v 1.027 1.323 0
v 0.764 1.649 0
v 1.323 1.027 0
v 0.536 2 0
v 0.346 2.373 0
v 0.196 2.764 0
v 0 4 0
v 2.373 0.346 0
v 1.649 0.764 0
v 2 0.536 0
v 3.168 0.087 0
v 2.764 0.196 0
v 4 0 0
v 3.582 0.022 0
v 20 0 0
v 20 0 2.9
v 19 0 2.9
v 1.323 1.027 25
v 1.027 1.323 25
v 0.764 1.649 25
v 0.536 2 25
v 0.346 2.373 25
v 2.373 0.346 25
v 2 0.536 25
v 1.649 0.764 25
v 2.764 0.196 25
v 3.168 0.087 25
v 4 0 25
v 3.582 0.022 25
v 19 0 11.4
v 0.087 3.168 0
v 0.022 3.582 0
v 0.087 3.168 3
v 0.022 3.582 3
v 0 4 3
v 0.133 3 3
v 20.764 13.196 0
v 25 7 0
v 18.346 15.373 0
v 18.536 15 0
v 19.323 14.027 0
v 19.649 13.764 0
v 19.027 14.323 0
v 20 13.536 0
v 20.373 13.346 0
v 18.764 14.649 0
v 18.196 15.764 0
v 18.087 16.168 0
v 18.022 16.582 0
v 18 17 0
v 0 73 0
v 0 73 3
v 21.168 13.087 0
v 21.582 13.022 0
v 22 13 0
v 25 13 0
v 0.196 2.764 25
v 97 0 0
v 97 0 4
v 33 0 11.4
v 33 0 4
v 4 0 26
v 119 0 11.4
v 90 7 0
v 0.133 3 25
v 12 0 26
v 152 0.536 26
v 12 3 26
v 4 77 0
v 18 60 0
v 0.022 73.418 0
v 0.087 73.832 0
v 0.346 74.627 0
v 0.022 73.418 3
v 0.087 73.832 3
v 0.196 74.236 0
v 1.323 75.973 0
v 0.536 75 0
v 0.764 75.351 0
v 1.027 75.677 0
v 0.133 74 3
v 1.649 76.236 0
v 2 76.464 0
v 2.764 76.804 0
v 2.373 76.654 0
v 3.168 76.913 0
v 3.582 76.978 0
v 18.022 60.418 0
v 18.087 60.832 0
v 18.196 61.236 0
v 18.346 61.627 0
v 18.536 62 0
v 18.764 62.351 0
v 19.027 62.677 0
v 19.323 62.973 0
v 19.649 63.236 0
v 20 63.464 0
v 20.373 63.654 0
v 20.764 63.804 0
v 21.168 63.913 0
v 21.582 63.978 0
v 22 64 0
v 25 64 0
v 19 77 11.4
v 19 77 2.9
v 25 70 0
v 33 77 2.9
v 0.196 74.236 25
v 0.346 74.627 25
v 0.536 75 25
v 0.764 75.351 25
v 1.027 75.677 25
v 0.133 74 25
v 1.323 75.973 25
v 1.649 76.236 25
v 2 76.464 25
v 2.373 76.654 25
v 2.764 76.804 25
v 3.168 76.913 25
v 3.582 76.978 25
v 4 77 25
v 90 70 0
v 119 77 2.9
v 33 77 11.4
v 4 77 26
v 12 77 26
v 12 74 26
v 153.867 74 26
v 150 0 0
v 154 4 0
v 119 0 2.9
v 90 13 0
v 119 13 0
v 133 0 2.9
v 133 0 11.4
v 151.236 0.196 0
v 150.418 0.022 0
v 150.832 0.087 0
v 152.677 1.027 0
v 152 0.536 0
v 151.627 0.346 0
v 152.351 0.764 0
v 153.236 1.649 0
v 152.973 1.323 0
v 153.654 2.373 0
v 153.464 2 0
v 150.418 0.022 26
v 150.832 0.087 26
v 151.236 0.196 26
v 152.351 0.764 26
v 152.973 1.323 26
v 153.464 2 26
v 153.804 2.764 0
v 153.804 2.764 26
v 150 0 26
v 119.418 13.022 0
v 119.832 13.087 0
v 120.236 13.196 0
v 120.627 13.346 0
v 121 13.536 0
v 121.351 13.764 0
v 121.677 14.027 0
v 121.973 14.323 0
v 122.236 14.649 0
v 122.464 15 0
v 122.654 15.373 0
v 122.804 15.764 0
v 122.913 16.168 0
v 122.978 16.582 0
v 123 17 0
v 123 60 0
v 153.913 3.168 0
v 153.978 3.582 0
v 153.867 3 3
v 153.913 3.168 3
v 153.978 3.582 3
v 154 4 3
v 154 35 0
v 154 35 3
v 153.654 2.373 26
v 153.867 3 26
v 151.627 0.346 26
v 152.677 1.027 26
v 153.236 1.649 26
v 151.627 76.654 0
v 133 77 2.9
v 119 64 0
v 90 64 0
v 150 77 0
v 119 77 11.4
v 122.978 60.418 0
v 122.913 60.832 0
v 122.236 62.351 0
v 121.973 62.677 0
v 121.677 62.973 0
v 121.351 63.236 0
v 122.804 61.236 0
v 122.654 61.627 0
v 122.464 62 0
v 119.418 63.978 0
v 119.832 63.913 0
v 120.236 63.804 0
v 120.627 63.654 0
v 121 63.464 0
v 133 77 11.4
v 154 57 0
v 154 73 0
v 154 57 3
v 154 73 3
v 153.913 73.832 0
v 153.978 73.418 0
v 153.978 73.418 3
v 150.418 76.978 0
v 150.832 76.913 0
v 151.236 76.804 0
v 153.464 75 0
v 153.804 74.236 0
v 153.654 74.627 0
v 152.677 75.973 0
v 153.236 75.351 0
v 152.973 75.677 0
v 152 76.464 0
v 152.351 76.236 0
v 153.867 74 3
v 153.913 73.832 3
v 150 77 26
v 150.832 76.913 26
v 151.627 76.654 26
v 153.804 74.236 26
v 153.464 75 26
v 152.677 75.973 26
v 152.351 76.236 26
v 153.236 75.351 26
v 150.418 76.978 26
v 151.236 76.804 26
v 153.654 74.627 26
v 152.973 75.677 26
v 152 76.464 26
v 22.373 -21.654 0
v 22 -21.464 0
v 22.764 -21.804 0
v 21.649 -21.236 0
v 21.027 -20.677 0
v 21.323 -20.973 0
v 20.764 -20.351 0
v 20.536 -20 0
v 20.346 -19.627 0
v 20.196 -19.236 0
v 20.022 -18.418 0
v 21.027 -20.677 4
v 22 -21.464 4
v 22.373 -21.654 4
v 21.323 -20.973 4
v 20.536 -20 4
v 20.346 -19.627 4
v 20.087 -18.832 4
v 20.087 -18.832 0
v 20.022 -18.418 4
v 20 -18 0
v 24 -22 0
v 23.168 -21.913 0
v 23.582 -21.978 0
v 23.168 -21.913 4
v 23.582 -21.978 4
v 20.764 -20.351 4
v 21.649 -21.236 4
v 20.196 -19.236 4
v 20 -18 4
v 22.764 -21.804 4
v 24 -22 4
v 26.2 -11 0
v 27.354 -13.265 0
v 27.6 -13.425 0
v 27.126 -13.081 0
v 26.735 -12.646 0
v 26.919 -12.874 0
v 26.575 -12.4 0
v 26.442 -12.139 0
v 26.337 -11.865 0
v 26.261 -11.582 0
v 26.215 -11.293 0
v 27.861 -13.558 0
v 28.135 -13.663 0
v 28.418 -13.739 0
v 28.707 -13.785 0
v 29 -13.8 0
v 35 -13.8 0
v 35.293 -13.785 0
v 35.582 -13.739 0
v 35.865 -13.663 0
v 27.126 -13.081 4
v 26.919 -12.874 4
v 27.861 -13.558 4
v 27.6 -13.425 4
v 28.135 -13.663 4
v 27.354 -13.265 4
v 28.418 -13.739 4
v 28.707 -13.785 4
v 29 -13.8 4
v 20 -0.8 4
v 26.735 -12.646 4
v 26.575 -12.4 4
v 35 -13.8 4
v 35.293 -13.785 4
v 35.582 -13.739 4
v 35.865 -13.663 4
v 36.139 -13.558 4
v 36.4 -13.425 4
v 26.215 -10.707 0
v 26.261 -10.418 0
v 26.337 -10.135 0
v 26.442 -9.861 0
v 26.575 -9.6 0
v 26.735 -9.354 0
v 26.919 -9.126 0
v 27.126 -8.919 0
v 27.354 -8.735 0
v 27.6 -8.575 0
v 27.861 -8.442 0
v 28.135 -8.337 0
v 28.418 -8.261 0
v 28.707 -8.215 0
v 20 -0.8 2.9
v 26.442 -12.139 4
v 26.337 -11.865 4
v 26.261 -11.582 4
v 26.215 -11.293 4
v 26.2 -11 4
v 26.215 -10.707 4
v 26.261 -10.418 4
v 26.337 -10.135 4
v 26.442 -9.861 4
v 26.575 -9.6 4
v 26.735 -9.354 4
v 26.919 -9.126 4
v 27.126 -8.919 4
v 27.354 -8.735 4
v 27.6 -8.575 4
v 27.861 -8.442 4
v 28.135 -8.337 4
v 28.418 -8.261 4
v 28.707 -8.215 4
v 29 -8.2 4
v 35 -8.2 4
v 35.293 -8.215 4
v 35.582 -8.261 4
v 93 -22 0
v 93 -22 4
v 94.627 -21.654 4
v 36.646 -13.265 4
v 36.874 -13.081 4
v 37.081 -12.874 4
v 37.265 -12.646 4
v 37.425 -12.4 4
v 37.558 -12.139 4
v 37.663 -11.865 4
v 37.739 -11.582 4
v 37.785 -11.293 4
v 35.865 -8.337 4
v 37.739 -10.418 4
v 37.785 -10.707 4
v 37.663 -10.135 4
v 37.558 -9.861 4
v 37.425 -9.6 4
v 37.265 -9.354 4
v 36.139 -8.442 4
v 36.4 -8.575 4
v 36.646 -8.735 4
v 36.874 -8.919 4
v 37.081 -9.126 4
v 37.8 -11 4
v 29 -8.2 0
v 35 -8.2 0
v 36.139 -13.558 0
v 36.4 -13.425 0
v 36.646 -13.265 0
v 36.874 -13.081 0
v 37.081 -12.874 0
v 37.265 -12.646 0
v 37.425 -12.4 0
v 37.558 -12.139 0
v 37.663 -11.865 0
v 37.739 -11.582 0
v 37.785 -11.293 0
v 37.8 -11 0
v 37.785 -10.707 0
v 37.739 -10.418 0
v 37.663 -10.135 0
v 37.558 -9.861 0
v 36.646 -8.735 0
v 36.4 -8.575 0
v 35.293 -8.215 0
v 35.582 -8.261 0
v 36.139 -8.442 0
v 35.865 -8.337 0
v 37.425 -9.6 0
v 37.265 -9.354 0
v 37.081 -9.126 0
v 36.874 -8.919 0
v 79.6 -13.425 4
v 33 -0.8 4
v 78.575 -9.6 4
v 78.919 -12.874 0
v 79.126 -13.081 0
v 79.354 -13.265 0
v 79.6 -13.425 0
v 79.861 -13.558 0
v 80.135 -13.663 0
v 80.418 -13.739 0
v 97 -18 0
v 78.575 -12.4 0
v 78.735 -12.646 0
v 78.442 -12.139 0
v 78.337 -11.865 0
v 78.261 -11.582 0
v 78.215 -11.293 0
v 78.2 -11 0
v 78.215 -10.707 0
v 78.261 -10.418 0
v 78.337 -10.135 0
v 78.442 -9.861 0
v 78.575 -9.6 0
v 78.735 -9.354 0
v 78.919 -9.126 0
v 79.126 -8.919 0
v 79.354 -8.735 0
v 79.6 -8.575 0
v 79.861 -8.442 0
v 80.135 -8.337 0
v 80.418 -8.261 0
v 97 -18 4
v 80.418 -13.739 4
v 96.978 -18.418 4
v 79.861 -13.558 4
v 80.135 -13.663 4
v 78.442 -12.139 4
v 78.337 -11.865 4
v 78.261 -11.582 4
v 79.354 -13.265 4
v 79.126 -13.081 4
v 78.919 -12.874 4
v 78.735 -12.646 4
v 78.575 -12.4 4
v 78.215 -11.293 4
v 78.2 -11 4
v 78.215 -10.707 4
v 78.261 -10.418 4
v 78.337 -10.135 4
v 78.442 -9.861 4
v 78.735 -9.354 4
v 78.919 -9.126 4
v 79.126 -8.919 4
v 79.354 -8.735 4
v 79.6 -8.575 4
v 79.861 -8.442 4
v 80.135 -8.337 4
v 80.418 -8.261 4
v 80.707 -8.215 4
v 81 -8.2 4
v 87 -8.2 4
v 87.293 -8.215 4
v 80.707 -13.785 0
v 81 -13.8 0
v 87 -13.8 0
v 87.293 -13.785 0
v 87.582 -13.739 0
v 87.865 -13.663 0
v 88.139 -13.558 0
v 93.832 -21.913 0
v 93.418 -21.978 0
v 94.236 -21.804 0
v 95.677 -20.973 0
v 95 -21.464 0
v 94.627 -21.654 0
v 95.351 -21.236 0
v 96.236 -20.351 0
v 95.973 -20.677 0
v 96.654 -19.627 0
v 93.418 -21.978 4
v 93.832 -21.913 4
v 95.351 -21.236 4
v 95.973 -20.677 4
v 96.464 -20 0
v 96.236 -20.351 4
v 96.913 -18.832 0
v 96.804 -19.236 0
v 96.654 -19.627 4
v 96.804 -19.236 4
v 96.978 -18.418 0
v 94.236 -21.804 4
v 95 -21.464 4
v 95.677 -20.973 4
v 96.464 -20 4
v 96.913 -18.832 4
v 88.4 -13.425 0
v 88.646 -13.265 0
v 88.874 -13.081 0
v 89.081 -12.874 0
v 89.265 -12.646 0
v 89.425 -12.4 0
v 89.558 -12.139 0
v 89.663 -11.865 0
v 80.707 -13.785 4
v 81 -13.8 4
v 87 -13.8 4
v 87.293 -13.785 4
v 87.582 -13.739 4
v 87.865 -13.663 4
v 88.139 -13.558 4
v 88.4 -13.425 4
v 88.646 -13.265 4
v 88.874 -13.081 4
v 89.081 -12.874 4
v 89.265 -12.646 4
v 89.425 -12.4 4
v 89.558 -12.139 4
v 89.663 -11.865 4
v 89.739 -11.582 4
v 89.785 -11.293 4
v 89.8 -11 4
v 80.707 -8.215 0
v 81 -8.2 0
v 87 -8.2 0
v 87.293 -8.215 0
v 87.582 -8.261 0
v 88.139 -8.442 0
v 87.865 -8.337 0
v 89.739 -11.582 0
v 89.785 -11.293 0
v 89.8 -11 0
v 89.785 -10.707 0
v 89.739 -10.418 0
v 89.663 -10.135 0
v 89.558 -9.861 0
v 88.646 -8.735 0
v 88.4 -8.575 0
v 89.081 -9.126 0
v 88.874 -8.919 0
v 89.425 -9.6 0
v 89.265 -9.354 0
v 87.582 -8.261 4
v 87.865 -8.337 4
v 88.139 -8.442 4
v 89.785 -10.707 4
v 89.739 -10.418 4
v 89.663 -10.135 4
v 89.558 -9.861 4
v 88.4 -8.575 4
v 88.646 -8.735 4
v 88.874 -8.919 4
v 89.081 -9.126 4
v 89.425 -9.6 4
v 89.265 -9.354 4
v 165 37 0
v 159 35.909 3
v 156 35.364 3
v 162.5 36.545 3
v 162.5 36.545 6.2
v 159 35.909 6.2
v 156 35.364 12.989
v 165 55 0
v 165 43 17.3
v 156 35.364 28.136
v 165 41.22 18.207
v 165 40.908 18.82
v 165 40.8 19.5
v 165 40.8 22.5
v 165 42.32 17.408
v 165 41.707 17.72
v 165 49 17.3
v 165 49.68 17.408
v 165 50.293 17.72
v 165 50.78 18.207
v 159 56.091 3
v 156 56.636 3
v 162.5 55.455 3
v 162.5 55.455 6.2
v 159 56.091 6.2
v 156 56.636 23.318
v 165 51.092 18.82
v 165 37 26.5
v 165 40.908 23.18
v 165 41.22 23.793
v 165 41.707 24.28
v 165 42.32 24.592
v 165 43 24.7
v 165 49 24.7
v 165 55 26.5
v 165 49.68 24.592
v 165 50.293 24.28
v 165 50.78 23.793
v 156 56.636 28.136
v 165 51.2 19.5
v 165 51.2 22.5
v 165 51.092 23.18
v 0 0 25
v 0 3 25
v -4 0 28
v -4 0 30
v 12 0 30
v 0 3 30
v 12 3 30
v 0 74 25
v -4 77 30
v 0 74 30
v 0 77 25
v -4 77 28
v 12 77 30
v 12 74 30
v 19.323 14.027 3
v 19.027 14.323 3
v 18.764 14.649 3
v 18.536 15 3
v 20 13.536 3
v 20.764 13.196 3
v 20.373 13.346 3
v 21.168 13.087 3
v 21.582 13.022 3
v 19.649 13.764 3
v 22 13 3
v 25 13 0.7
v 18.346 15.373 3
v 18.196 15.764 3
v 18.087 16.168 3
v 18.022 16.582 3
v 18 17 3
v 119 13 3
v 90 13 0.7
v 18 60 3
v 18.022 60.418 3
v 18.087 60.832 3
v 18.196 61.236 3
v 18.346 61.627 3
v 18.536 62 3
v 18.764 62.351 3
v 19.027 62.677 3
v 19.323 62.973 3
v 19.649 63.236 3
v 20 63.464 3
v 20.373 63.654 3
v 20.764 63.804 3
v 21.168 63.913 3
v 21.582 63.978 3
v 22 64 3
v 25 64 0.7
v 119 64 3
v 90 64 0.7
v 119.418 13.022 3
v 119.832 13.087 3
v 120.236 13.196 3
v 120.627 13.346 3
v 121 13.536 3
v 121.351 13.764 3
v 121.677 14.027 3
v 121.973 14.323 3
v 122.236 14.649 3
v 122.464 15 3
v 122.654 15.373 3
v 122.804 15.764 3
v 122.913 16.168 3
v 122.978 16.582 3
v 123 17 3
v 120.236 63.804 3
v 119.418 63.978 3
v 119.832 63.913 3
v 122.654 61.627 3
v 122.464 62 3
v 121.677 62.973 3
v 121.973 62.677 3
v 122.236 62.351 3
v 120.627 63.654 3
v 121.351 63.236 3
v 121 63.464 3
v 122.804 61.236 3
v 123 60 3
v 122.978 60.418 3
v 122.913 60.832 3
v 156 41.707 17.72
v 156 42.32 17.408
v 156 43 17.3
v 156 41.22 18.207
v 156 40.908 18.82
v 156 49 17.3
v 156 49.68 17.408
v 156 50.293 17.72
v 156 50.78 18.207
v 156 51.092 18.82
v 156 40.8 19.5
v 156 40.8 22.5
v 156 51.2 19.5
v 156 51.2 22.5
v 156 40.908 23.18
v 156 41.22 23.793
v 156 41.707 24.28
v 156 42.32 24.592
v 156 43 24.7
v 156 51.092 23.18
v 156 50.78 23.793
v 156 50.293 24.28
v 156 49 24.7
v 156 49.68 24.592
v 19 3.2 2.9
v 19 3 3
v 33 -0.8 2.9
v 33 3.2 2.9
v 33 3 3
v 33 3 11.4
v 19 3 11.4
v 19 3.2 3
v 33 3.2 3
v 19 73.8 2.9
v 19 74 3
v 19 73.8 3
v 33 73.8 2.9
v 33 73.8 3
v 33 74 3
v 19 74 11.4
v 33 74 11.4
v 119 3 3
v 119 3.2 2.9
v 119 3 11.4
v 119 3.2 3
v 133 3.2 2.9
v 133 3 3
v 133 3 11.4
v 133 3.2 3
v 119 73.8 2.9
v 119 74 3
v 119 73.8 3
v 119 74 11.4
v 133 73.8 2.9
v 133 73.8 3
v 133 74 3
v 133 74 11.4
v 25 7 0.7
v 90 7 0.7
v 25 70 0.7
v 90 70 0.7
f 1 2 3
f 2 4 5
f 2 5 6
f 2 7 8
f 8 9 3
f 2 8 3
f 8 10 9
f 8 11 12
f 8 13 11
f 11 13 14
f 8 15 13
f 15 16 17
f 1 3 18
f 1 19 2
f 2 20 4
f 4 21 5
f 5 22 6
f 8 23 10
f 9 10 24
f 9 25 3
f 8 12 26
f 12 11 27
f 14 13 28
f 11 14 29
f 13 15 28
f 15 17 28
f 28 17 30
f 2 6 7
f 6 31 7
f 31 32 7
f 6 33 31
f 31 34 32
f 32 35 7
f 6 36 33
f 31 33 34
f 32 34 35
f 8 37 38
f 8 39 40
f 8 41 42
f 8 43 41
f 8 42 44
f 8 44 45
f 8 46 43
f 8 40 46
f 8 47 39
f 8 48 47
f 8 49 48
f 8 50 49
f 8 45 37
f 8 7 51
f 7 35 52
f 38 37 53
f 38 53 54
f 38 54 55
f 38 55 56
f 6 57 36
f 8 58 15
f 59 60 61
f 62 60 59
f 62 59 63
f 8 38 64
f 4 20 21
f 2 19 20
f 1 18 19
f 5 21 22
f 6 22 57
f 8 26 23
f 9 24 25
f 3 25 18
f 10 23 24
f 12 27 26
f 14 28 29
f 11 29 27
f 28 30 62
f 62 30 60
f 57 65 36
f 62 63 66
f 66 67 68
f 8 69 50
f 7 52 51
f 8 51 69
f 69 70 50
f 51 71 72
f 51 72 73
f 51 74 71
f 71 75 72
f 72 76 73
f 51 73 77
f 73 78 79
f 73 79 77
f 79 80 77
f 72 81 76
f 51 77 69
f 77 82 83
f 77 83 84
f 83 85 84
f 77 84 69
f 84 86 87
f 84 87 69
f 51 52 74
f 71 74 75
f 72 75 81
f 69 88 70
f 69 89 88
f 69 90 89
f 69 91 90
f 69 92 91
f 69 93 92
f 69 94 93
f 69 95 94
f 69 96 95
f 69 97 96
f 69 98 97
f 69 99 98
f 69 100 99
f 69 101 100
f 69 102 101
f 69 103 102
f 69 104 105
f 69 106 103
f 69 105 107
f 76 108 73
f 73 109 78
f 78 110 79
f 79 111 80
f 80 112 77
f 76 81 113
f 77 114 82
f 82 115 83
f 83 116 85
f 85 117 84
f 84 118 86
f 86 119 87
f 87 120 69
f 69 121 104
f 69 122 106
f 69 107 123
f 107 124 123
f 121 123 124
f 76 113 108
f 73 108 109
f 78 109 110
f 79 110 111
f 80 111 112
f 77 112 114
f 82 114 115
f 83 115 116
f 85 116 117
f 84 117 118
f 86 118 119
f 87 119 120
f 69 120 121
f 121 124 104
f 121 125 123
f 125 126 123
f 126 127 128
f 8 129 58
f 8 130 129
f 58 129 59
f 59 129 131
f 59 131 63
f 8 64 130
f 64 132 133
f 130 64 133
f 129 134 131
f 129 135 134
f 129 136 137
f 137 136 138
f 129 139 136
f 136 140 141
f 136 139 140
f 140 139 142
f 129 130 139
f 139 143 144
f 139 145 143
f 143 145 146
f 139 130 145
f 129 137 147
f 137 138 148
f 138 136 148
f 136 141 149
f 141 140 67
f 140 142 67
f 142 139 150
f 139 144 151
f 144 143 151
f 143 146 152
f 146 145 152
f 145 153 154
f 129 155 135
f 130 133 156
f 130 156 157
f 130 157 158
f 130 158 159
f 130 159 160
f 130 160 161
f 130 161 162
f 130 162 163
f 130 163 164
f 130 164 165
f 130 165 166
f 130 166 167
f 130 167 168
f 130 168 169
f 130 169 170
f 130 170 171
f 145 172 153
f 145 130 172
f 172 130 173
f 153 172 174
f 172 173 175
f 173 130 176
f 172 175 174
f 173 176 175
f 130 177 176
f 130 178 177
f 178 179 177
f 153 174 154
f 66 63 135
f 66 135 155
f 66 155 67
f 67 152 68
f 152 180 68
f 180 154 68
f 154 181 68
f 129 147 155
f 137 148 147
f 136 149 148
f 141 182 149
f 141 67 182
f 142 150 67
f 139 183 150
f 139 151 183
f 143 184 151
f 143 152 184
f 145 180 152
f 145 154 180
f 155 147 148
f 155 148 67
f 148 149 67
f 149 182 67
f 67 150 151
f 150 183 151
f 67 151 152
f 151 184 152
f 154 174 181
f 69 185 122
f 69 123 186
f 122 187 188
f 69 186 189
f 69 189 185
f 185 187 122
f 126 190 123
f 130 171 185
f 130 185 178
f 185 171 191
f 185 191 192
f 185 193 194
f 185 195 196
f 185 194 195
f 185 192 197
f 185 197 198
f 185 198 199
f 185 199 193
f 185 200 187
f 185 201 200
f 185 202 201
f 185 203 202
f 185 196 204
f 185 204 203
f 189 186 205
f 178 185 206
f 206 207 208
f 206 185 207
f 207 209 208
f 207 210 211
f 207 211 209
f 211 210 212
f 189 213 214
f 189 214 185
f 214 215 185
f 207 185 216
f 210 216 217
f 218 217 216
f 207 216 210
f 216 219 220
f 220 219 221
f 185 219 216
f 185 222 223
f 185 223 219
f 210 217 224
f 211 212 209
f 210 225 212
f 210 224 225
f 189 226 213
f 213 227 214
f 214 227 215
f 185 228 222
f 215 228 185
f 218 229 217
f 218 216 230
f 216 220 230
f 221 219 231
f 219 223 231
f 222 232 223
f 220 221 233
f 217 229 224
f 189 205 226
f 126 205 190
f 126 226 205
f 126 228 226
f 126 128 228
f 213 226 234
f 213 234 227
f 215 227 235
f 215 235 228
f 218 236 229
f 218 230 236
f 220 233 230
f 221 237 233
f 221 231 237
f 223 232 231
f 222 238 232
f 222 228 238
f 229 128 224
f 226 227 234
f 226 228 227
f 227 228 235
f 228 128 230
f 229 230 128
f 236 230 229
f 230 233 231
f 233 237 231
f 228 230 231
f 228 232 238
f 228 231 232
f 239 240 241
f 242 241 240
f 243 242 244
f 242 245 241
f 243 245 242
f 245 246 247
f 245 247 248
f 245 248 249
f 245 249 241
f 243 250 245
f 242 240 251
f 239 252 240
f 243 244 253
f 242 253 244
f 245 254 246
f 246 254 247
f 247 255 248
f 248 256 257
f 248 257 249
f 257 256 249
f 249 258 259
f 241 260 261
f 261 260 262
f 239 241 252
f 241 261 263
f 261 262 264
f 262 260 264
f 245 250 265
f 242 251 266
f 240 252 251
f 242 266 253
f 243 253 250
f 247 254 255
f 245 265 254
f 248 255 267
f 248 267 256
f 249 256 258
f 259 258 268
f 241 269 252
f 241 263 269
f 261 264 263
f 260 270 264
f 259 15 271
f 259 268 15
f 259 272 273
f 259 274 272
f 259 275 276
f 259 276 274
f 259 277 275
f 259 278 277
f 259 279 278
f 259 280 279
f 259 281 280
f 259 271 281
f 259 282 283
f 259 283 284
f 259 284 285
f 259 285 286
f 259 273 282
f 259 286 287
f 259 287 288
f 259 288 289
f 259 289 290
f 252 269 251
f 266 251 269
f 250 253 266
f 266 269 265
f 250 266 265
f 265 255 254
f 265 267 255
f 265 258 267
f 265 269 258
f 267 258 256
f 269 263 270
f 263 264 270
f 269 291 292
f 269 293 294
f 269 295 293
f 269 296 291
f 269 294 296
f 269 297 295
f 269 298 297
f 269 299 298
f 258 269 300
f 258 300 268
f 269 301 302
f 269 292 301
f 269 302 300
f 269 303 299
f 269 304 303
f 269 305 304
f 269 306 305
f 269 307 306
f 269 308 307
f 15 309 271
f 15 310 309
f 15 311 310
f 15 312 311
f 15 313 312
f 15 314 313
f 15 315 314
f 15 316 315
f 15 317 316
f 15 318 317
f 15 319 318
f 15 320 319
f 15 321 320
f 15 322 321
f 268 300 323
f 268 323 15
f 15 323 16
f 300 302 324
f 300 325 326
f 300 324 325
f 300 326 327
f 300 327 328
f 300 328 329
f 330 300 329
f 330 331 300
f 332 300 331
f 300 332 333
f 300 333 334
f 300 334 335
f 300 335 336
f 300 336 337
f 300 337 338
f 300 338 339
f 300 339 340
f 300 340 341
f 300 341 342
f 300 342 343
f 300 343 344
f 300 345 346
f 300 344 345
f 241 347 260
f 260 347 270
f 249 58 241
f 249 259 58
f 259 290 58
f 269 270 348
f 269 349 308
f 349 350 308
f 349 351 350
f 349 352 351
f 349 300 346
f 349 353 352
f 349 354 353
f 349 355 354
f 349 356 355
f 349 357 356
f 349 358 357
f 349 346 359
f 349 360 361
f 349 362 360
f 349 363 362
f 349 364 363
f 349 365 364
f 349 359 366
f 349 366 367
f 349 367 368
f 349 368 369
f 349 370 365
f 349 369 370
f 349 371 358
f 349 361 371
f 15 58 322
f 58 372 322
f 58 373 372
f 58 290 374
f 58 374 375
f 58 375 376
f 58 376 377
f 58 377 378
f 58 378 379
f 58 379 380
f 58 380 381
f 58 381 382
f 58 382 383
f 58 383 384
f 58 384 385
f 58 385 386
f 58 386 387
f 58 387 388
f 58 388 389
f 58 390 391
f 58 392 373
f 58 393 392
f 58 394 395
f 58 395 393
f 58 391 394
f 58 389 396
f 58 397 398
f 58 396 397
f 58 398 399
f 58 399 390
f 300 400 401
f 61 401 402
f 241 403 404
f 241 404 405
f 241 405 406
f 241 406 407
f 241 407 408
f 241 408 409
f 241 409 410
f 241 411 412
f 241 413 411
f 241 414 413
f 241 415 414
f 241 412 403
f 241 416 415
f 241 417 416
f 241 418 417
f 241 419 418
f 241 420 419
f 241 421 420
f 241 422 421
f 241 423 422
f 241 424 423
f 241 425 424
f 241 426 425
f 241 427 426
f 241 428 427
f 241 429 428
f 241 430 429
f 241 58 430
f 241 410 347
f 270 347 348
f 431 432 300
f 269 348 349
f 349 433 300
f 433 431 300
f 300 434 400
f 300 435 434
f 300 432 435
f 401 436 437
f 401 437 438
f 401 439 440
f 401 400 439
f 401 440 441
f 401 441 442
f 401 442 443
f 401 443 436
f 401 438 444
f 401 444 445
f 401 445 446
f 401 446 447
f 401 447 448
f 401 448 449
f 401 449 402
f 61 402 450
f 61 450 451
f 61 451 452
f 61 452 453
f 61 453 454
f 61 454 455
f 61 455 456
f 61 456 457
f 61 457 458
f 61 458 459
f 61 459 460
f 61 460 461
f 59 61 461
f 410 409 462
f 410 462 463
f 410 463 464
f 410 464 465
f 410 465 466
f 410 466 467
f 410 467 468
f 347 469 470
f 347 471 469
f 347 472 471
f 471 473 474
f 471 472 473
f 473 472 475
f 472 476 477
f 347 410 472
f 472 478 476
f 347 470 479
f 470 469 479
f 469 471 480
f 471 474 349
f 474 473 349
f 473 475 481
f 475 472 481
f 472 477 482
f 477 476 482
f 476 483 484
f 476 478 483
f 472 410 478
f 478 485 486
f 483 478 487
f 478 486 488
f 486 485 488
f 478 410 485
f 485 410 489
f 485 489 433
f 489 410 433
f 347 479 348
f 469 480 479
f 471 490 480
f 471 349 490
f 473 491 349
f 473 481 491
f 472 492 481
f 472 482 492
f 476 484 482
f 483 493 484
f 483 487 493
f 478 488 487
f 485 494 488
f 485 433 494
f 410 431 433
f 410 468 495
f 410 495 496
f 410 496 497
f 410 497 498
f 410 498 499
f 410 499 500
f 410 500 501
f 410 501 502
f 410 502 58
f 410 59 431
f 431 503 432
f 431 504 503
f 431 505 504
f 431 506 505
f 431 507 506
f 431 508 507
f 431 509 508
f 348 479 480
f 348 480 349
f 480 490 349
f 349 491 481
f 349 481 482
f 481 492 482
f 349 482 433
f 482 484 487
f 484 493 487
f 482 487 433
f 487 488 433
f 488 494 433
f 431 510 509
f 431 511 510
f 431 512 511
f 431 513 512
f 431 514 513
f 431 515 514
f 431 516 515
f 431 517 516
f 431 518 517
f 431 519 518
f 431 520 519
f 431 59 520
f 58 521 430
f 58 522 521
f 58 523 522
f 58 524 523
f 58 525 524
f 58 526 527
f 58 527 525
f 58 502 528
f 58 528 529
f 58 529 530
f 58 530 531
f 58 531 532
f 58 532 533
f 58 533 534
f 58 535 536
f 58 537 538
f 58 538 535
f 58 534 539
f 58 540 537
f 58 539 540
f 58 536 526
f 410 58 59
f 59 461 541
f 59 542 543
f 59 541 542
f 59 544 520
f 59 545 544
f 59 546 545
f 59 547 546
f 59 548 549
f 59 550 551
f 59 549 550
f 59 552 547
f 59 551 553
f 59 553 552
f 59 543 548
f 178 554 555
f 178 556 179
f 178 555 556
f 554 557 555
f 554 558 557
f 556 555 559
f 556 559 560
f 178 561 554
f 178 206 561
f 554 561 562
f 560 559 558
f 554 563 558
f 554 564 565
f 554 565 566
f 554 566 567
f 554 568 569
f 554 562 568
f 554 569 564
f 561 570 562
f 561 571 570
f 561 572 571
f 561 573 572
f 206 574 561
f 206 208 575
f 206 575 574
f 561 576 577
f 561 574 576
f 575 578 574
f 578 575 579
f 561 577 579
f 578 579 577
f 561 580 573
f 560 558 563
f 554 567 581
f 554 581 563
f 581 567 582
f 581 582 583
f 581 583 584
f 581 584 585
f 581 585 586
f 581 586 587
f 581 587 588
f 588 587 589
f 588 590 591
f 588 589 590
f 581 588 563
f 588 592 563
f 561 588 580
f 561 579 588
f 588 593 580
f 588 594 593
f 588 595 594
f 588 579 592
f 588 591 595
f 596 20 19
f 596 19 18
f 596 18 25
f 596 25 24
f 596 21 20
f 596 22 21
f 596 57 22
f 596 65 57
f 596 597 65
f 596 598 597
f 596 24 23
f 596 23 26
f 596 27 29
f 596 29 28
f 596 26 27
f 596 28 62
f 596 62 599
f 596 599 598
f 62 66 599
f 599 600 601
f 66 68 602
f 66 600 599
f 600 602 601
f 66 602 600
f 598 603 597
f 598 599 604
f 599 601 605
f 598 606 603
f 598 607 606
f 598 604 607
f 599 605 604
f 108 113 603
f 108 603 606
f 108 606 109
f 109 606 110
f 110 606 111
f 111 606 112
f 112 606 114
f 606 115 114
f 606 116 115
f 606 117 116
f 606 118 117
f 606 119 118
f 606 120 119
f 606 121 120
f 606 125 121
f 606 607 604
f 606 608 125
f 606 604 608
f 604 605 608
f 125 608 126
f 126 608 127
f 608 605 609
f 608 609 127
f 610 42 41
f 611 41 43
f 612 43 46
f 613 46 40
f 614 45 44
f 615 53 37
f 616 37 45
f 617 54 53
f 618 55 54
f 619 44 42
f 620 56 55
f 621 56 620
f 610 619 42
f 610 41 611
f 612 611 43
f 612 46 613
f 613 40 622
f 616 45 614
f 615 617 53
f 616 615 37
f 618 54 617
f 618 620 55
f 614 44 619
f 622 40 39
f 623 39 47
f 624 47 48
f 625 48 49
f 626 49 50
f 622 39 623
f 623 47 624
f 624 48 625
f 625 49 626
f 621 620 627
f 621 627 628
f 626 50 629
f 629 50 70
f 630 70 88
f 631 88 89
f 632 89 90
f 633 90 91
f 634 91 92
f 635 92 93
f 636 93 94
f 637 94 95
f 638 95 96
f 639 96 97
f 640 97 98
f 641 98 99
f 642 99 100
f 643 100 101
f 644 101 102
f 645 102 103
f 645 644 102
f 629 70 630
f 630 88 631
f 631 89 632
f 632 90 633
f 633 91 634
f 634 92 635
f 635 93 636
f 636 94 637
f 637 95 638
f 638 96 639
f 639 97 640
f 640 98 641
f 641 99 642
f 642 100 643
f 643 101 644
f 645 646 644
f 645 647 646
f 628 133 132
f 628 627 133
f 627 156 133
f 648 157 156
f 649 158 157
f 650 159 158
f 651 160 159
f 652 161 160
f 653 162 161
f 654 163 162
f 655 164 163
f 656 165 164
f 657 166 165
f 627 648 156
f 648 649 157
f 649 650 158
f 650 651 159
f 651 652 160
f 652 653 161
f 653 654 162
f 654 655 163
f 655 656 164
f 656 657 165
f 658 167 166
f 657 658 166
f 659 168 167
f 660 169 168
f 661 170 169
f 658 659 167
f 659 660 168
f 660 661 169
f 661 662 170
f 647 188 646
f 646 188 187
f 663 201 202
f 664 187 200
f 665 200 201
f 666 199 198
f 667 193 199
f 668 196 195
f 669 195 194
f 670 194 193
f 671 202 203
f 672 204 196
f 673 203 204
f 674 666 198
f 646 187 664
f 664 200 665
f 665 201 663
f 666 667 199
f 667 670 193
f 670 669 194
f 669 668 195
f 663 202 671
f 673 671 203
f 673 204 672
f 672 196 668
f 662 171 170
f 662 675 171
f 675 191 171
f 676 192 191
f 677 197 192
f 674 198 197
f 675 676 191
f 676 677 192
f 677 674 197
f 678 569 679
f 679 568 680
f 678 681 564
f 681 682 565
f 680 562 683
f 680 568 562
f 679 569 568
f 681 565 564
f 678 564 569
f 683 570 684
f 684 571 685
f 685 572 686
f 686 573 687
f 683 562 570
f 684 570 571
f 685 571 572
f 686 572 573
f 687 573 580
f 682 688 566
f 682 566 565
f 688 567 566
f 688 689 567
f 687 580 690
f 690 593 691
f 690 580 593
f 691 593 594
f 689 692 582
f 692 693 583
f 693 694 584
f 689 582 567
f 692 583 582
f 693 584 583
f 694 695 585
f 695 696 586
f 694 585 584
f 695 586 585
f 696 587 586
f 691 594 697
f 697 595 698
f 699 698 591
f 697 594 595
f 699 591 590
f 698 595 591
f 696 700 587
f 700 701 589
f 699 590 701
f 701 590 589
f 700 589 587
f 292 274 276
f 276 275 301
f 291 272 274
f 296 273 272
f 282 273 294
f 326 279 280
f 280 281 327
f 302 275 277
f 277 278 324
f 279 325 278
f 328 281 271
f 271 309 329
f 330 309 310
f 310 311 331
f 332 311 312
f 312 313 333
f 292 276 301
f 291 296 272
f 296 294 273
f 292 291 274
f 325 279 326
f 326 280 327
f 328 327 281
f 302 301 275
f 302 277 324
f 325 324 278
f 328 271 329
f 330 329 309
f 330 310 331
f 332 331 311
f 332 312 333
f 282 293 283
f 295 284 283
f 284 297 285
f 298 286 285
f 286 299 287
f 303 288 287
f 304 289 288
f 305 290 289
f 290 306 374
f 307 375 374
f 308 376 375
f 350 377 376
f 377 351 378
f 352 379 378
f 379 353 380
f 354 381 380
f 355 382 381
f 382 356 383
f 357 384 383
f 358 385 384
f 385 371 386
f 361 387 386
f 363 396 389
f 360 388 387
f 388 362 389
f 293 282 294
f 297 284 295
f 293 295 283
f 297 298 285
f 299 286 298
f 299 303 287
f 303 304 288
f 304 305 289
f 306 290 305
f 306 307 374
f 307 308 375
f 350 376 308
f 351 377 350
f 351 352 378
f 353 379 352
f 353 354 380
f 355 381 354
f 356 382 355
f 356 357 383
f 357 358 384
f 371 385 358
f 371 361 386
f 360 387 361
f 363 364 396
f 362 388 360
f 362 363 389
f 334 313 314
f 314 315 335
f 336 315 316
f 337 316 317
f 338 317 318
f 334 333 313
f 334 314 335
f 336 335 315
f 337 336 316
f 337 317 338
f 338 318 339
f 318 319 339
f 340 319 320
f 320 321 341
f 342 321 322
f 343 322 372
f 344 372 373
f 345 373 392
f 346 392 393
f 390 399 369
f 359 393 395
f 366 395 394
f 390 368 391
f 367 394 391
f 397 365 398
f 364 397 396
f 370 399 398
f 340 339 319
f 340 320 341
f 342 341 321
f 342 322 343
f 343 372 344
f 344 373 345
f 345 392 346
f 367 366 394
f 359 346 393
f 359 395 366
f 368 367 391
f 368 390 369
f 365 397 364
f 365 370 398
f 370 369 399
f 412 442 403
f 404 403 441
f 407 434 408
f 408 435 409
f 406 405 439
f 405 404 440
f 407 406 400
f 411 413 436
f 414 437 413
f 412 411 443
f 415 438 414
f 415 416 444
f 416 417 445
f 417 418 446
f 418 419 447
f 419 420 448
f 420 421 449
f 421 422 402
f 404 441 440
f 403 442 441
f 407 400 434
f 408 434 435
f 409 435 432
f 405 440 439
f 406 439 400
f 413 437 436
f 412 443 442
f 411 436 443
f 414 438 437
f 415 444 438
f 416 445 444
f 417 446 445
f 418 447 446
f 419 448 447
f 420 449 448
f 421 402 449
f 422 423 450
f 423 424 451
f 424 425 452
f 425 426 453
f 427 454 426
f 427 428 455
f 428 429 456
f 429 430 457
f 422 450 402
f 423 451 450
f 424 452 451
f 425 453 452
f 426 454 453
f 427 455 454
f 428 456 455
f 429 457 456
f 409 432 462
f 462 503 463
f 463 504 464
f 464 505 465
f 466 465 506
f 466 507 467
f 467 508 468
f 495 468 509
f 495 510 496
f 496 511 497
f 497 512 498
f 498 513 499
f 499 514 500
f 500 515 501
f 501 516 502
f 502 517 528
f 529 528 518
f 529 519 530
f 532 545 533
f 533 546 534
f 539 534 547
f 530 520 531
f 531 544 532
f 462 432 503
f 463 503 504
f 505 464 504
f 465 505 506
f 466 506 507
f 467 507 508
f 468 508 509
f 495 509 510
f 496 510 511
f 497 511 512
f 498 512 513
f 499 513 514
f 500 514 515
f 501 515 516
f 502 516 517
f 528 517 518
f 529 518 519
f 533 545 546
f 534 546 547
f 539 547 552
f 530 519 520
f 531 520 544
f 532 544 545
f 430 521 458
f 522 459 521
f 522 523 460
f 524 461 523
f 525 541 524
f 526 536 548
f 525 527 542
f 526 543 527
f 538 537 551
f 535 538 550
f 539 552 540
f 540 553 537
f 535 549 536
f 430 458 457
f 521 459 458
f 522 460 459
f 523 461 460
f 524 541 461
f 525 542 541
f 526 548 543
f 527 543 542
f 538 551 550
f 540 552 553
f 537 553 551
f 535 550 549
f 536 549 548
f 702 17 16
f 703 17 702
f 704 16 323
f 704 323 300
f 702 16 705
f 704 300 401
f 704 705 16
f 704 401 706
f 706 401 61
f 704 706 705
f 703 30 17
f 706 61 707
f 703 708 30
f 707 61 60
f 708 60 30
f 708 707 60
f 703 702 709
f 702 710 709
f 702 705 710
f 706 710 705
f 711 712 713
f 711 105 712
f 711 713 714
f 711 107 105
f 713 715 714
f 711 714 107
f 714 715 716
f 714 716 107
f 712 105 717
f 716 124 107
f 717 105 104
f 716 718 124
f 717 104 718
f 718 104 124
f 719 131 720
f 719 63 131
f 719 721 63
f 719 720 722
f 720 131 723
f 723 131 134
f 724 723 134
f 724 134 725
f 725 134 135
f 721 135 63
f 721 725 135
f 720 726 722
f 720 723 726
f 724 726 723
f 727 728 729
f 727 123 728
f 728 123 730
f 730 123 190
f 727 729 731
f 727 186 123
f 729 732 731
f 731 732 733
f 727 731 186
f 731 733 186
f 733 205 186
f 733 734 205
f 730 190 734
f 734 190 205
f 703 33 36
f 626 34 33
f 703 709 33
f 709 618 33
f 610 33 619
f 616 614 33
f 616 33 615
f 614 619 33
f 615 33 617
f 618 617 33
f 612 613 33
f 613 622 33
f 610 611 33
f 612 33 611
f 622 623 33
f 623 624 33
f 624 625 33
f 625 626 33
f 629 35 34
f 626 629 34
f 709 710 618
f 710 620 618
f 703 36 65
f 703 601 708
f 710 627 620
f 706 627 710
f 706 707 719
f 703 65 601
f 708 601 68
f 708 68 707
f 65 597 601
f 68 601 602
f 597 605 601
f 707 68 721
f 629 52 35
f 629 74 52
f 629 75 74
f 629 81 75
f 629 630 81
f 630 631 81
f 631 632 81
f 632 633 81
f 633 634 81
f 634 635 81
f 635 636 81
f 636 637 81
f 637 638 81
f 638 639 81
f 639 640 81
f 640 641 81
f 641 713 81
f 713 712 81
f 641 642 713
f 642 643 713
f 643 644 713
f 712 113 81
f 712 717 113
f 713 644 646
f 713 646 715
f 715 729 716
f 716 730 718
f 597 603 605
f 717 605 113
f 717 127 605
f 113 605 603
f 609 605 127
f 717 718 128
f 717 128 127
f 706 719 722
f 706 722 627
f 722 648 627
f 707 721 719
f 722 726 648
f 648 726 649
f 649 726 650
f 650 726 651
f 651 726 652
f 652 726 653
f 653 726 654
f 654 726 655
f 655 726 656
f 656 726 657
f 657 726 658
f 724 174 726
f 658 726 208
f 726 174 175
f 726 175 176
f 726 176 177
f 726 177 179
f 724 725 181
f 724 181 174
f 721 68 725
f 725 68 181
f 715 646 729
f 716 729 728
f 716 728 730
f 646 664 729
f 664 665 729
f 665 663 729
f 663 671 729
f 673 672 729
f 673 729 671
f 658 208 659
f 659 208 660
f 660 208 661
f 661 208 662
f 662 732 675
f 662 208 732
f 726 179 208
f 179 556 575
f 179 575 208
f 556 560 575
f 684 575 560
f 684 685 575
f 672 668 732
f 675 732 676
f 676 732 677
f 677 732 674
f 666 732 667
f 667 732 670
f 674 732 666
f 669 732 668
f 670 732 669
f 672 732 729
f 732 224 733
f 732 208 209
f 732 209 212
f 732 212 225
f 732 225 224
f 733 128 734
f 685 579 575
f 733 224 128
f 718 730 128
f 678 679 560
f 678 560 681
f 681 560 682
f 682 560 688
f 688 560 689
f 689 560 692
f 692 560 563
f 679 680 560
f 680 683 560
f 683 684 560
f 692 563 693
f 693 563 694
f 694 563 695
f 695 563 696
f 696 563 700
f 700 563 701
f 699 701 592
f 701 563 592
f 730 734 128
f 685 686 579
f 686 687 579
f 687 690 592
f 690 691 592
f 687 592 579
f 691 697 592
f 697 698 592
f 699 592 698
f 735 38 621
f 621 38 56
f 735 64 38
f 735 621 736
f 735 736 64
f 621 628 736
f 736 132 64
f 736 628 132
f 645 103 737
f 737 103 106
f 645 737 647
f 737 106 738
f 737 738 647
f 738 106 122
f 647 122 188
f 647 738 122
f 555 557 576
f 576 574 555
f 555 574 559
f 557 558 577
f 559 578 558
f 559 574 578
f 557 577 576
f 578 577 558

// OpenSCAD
// file: ../00_common/parameters.scad
// =============================================================================
// OpenMotorBridge - Global CAD Parameters & Settings
// =============================================================================
// File: hardware/cad/scad/00_common/parameters.scad
// Description: Global dimensional constants, manufacturing clearances and
//              circle resolution ($fn) for all OpenSCAD modules.
// =============================================================================

// --- 1. Circle & Curve Resolution ---
$fn = 60; // Smooth cylinders and holes for high-quality MJF 3D printing

// --- 2. Central Main Box Dimensions (3-Tier Sandwich) ---
MAIN_BOX_OUTER_L      = 110.0; // Outer length in X (mm)
MAIN_BOX_OUTER_W      = 74.0;  // Outer width in Y (mm)
MAIN_BOX_LOWER_H      = 17.0;  // Lower case height in Z (mm)
MAIN_BOX_MID_H        = 15.0;  // Mid tray height in Z (mm)
MAIN_BOX_LID_H        = 4.0;   // Lid plate thickness in Z (mm)
MAIN_BOX_WALL         = 2.5;   // Nominal wall thickness (mm)
MAIN_BOX_CORNER_POST  = 7.0;   // Corner clamping screw post size (mm, for M3 hex nut pockets)

// --- 3. Satellite Pod Dimensions (Universal Enlarged Envelope) ---
POD_OUTER_L           = 150.0; // Outer length in X (mm, standardized for serial PCBA 03 + Cardo/Sena/OMM)
POD_OUTER_W           = 70.0;  // Outer width in Y (mm)
POD_OUTER_H           = 38.0;  // Outer height in Z (mm)
POD_WALL              = 3.5;   // Nominal wall thickness (mm)
POD_BULKHEAD_X        = 18.0;  // Partition bulkhead position in X (mm)
POD_CHAMBER_L         = 132.0; // Sliding chamber length in X (mm, clears 130mm sled + 2mm margin)
POD_CHAMBER_W         = 63.0;  // Sliding chamber width in Y (mm)
POD_CHAMBER_H         = 31.0;  // Sliding chamber height in Z (mm)

// --- 4. Pod Linear Guide Rails (Poka-Yoke Tongue & Groove) ---
POD_GROOVE_W          = 3.0;   // Internal guide groove width in Z (mm)
POD_GROOVE_DEPTH      = 1.5;   // Internal guide groove depth in Y (mm)
POD_GROOVE_LEFT_Z     = 10.0;  // Center height of left groove (mm)
POD_GROOVE_RIGHT_Z    = 18.0;  // Center height of right groove (mm, asym offset)

CARTRIDGE_TONGUE_W    = 2.6;   // Cartridge tongue rail height in Z (mm, 0.2mm clearance)
CARTRIDGE_TONGUE_PROT = 1.4;   // Cartridge tongue protrusion in Y (mm, 0.1mm clearance)
CARTRIDGE_CHAMFER_L   = 4.0;   // 30° lead-in chamfer nose length (mm)

// --- 5. Cartridge Dimensions (Enlarged Universal Sled) ---
CARTRIDGE_BASE_L      = 130.0; // Sled length in X (mm, accommodates PCBA 03 + OEM Cardo Air-Mount/Sena/OMM serial layout)
CARTRIDGE_BASE_W      = 58.0;  // Sled width in Y (mm)
CARTRIDGE_BASE_H      = 28.0;  // Sled height in Z (mm)
CARTRIDGE_FACE_L      = 4.0;   // Front faceplate thickness in X (mm)
CARTRIDGE_FACE_W      = 64.0;  // Front faceplate width in Y (mm)
CARTRIDGE_FACE_H      = 34.0;  // Front faceplate height in Z (mm)

// --- 5a. RF Interface & Sealing Dimensions ---
SMA_BORE_R            = 3.25;  // Ø 6.5 mm through-hole for standard SMA bulkhead
SMA_ORECESS_R         = 4.75;  // Ø 9.5 mm recess for waterproof silicone O-ring
SMA_ORECESS_DEPTH     = 1.2;   // 1.2 mm deep O-ring compression pocket

// --- 5b. Magnetic Anti-Theft Lock System ---
LATCH_PIVOT_X         = 65.0;  // Center pivot position along sled X (mm, centered on 130mm sled)
LATCH_MAGNET_X        = 53.0;  // Ferromagnetic anchor position along sled X (mm)
LATCH_TOOTH_X         = 77.0;  // Locking sawtooth pawl position along sled X (mm)
LATCH_ARM_H           = 6.0;   // Rocker lever height in Z (mm)
LATCH_ARM_THICK       = 2.6;   // Rocker beam thickness in Y (mm)
LATCH_MAGNET_PIN_DIA  = 6.2;   // Bore for Ø 6.0 mm steel dowel pin (mm)
LATCH_SPRING_DIA      = 3.8;   // Bore for Ø 3.5 mm return compression spring (mm)

// --- 6. Standard Captive Hex Nut Pockets (DIN 934 / DIN 985 with +0.2 mm MJF/FDM clearance) ---
NUT_M2_SW             = 4.2;   // M2 across flats (nominal 4.0 mm)
NUT_M2_H              = 1.8;   // M2 thickness (nominal 1.6 mm)
NUT_M2_5_SW           = 5.2;   // M2.5 across flats (nominal 5.0 mm)
NUT_M2_5_H            = 2.2;   // M2.5 thickness (nominal 2.0 mm)
NUT_M3_SW             = 5.7;   // M3 across flats (nominal 5.5 mm)
NUT_M3_H              = 2.6;   // M3 thickness (nominal 2.4 mm)
NUT_M4_SW             = 7.2;   // M4 across flats (nominal 7.0 mm)
NUT_M4_H              = 3.4;   // M4 thickness (nominal 3.2 mm)
NUT_M5_SW             = 8.2;   // M5 across flats (nominal 8.0 mm)
NUT_M5_H              = 4.2;   // M5 thickness (nominal 4.0 mm)

// Direct Plastic Thread-Forming / Self-Tapping Pilot Holes in PA12 (100% Soldering-Iron Free)
M2_PILOT_HOLE_R       = 0.85;  // Core hole for M2 screws in PA12 (Ø 1.7 mm)
M2_5_PILOT_HOLE_R     = 1.05;  // Core hole for M2.5 screws in PA12 (Ø 2.1 mm)
M3_PILOT_HOLE_R       = 1.25;  // Core hole for M3 screws in PA12 (Ø 2.5 mm)

// --- 7. Screw & Clearance Dimensions ---
M2_SCREW_HOLE_R       = 1.1;   // M2 clearance hole (r = 1.1 mm -> Ø 2.2 mm)
M2_5_SCREW_HOLE_R     = 1.4;   // M2.5 clearance hole (r = 1.4 mm -> Ø 2.8 mm)
M3_SCREW_HOLE_R       = 1.65;  // M3 clearance hole (r = 1.65 mm -> Ø 3.3 mm)
M4_SCREW_HOLE_R       = 2.2;   // M4 clearance hole (r = 2.2 mm -> Ø 4.4 mm)
M8_BORE_R             = 4.0;   // M8 cable through-bore (r = 4.0 mm -> Ø 8.0 mm)
M8_STUDS_OUTER_R      = 6.0;   // M8 neck outer radius (Ø 12.0 mm)

// --- 8. Universal Front Node Enclosure Dimensions (Type E: 98 x 68 x 25 mm) ---
FRONT_NODE_PCB_L      = 82.0;  // PCB length in X (mm, PCBA 05)
FRONT_NODE_PCB_W      = 50.0;  // PCB width in Y (mm, PCBA 05)
FRONT_NODE_PCB_H      = 1.6;   // PCB thickness in Z (mm)
FRONT_NODE_PCB_R      = 2.5;   // PCB corner radius (mm)

FRONT_NODE_CHAMBER_L  = 86.0;  // Internal chamber length in X (mm, 2mm margin per side)
FRONT_NODE_CHAMBER_W  = 56.0;  // Internal chamber width in Y (mm, 3mm margin per side)
FRONT_NODE_TUB_H      = 17.5;  // Lower tub depth in Z (mm)
FRONT_NODE_LID_H      = 7.5;   // Upper lid height in Z (mm)
FRONT_NODE_WALL       = 2.5;   // Wall thickness in HP MJF PA12 (mm)
FRONT_NODE_CORNER_R   = 4.0;   // Outer enclosure corner radius (mm)

FRONT_NODE_OUTER_L    = FRONT_NODE_CHAMBER_L + 2 * FRONT_NODE_WALL + 7.0; // 98.0 mm
FRONT_NODE_OUTER_W    = FRONT_NODE_CHAMBER_W + 2 * FRONT_NODE_WALL + 7.0; // 68.0 mm
FRONT_NODE_OUTER_H    = FRONT_NODE_TUB_H + FRONT_NODE_LID_H;              // 25.0 mm

// PCB Standoff Heights & Radii (100% Soldering-Iron Free)
FRONT_NODE_STANDOFF_H = 3.0;   // Height of PCB standoffs from floor (mm)
FRONT_NODE_STANDOFF_R = 3.0;   // Outer radius of M2.5 screw bosses (mm)
FRONT_NODE_CORE_HOLE_R= M2_5_PILOT_HOLE_R; // Core hole for direct M2.5 screw engagement (Ø 2.1 mm)

// AMPS 4-Hole Mounting Pattern (38 x 30 mm with DIN 934 M4 Captive Nut Pockets)
AMPS_SPACING_X        = 38.0;  // AMPS hole distance in X (mm)
AMPS_SPACING_Y        = 30.0;  // AMPS hole distance in Y (mm)
AMPS_NUT_SW           = NUT_M4_SW; // Captive M4 hex nut pocket across flats (7.2 mm)
AMPS_NUT_H            = NUT_M4_H;  // Captive M4 hex nut pocket depth (3.4 mm)

// Acoustic Vent for Knowles SPH0645 MEMS
FRONT_NODE_MIC_HOLE_R = 1.25;  // Sound canal radius (Ø 2.5 mm)
FRONT_NODE_MIC_MEMB_R = 3.0;   // Gore ePTFE membrane pocket radius (Ø 6.0 mm)
FRONT_NODE_MIC_MEMB_D = 0.8;   // Membrane pocket depth (mm)
// main file
// =============================================================================
// OpenMotorBridge - Universal Saddlebag Lid Dock (Kofferdeckel-Halter)
// =============================================================================
// File: hardware/cad/scad/02_pod_base/saddlebag_lid_dock.scad
// Description: HP MJF PA12 mounting caddy for Universal Pods 1 & 2 inside
//              Harley-Davidson Touring One-Touch saddlebag lids (2014-2024+).
//              Zero-Drill: Picks up factory hinge/tether Torx screws and/or
//              3M VHB landing pads. Features integrated cable routing along
//              the lid tether and an overhead drip guard.
// =============================================================================

include <../00_common/parameters.scad>;

// --- Parametric Dimensions ---
DOCK_POD_L          = POD_OUTER_L + 1.0; // Clearance for 150 mm Pod (151.0 mm)
DOCK_POD_W          = POD_OUTER_W + 1.0; // Clearance for 70 mm Pod (71.0 mm)
DOCK_POD_H          = POD_OUTER_H + 1.0; // Clearance for 38 mm Pod (39.0 mm)
DOCK_WALL           = 3.0;   // Solid MJF PA12 wall thickness
DOCK_CORNER_R       = 4.0;   // Outer verrundung

// Outer cradle envelope
CRADLE_OUTER_L      = DOCK_POD_L + DOCK_WALL;
CRADLE_OUTER_W      = DOCK_POD_W + 2 * DOCK_WALL;
CRADLE_OUTER_H      = 26.0;  // Half-height cradle for quick cartridge access

// Flange dimensions for Harley One-Touch Hinge / Tether Torx screws
FLANGE_EXT_W        = 22.0;  // Extension of side flange towards hinge
FLANGE_THICK        = 4.0;   // Rigid mounting flange thickness
TORX_HOLE_R         = 2.8;   // M5 / Torx T20 clearance hole (Ø 5.6 mm)
TORX_SPACING_X      = 52.0;  // Typical Harley hinge/tether screw distance

module rounded_box(l, w, h, r) {
    hull() {
        translate([r, r, 0]) cylinder(r=r, h=h);
        translate([l-r, r, 0]) cylinder(r=r, h=h);
        translate([r, w-r, 0]) cylinder(r=r, h=h);
        translate([l-r, w-r, 0]) cylinder(r=r, h=h);
    }
}

module saddlebag_lid_dock() {
    difference() {
        union() {
            // 1. Main Cradle Body
            rounded_box(CRADLE_OUTER_L, CRADLE_OUTER_W, CRADLE_OUTER_H, DOCK_CORNER_R);

            // 2. Zero-Drill Torx Mounting Flange (Inboard edge facing hinge)
            translate([20.0, -FLANGE_EXT_W, 0]) {
                hull() {
                    translate([DOCK_CORNER_R, DOCK_CORNER_R, 0]) cylinder(r=DOCK_CORNER_R, h=FLANGE_THICK);
                    translate([TORX_SPACING_X + 25.0 - DOCK_CORNER_R, DOCK_CORNER_R, 0]) cylinder(r=DOCK_CORNER_R, h=FLANGE_THICK);
                    translate([DOCK_CORNER_R, FLANGE_EXT_W + DOCK_WALL, 0]) cylinder(r=DOCK_CORNER_R, h=FLANGE_THICK);
                    translate([TORX_SPACING_X + 25.0 - DOCK_CORNER_R, FLANGE_EXT_W + DOCK_WALL, 0]) cylinder(r=DOCK_CORNER_R, h=FLANGE_THICK);
                }
            }

            // 3. Single-Port Cable Strain-Relief Snout (Dedicated to Port B at Y=46)
            // Completely encloses the slim 2-wire DC tether cable with solid protective roof
            translate([CRADLE_OUTER_L - 4.0, 35.0, 0]) {
                hull() {
                    cube([4.0, 22.0, 28.5]);
                    translate([14.0, 2.0, 0]) cube([1.0, 18.0, 26.5]);
                }
            }

            // 4. Overhead Drip Lip (Tropfkante) over cartridge slot
            translate([0, 0, CRADLE_OUTER_H - 1.0]) {
                hull() {
                    translate([0, 0, 0]) cube([12.0, CRADLE_OUTER_W, 1.0]);
                    translate([-4.0, 0, 3.0]) cube([16.0, CRADLE_OUTER_W, 2.0]);
                }
            }
        }

        // --- SUBTRACTIONS ---

        // A. Pod Main Reception Cavity
        translate([0, DOCK_WALL, DOCK_WALL]) {
            cube([DOCK_POD_L + 5.0, DOCK_POD_W, DOCK_POD_H + 5.0]);
        }

        // B. Cartridge Ejection Window & Viewing Window (Floor cutouts)
        translate([18.0, DOCK_WALL + 10.0, -1.0]) {
            rounded_box(DOCK_POD_L - 46.0, DOCK_POD_W - 20.0, DOCK_WALL + 2.0, 4.0);
        }

        // C1. Port A (M8): Internal Blind Clearance Pocket (No external through-hole!)
        // Aligned at Dock Y = DOCK_WALL + 27.0 = 30.0 mm, Z = DOCK_WALL + 19.0 = 22.0 mm
        // Provides 3.0 mm clearance for the 2.0 mm protruding M8 collar & screw cap on the pod,
        // while the exterior dock wall remains 100% solid and clean (0 false cables).
        translate([CRADLE_OUTER_L - DOCK_WALL - 0.1, 30.0, 22.0]) {
            rotate([0, 90, 0])
                hull() {
                    for (dy = [-6.5, 6.5]) {
                        for (dz = [-6.5, 6.5]) {
                            translate([dz, dy, 0])
                                cylinder(r=2.0, h=3.0, center=false, $fn=16);
                        }
                    }
                }
        }

        // C2. Port B (Slim USB-C): Primary Saddlebag Tether Cable Exit Bore & Plug-Well
        // Aligned at Dock Y = DOCK_WALL + 43.0 = 46.0 mm, Z = DOCK_WALL + 18.0 = 21.0 mm
        // Tunnel is fully enclosed within the snout housing (solid continuous roof)
        translate([CRADLE_OUTER_L - DOCK_WALL - 0.1, 46.0, 21.0]) {
            rotate([0, 90, 0])
                hull() {
                    for (dy = [-3.0, 3.0]) {
                        for (dz = [-1.5, 1.5]) {
                            translate([dz, dy, 0])
                                cylinder(r=2.2, h=22.0, center=false, $fn=20);
                        }
                    }
                }
        }

        // D. Torx Slotted Holes for Harley Hinge Attachment
        translate([20.0 + 12.0, -FLANGE_EXT_W/2, -1.0]) {
            // Hole 1 (Slotted for tolerance)
            hull() {
                translate([-3.0, 0, 0]) cylinder(r=TORX_HOLE_R, h=FLANGE_THICK + 2.0);
                translate([3.0, 0, 0]) cylinder(r=TORX_HOLE_R, h=FLANGE_THICK + 2.0);
            }
            // Hole 2 (Slotted for tolerance)
            translate([TORX_SPACING_X, 0, 0]) {
                hull() {
                    translate([-3.0, 0, 0]) cylinder(r=TORX_HOLE_R, h=FLANGE_THICK + 2.0);
                    translate([3.0, 0, 0]) cylinder(r=TORX_HOLE_R, h=FLANGE_THICK + 2.0);
                }
            }
        }

        // E. 3M VHB / Dual-Lock Landing Pad Recesses on Bottom
        translate([25.0, DOCK_WALL + 4.0, -0.1]) {
            cube([65.0, 24.0, 0.8]);
        }
        translate([25.0, DOCK_WALL + DOCK_POD_W - 28.0, -0.1]) {
            cube([65.0, 24.0, 0.8]);
        }

        // F. Single Zip-Tie Clamping Tunnel for Port B Tether Cable
        // Cleanly pierces through the flanks of the Port B snout (Y = 32 to 58)
        translate([CRADLE_OUTER_L + 5.0, 32.0, 3.0]) {
            cube([3.5, 28.0, 3.2]);
        }

        // G. 4x Lateral Relief Pockets for Pod Base Strap Hook Lugs (X=25 and X=POD_OUTER_L-25)
        // Pod lugs project 3.0 mm laterally. Pockets provide 14.0 x 4.0 x 8.5 mm clearance.
        for (hx = [26.0, POD_OUTER_L - 24.0]) {
            // Inboard flank (Y = 0)
            translate([hx - 7.0, DOCK_WALL - 3.8, DOCK_WALL - 0.1])
                cube([14.0, 4.0, 8.5]);
            // Outboard flank (Y = DOCK_WALL + DOCK_POD_W)
            translate([hx - 7.0, DOCK_WALL + DOCK_POD_W - 0.2, DOCK_WALL - 0.1])
                cube([14.0, 4.0, 8.5]);
        }
    }
}

// Render monolithic module
saddlebag_lid_dock();
